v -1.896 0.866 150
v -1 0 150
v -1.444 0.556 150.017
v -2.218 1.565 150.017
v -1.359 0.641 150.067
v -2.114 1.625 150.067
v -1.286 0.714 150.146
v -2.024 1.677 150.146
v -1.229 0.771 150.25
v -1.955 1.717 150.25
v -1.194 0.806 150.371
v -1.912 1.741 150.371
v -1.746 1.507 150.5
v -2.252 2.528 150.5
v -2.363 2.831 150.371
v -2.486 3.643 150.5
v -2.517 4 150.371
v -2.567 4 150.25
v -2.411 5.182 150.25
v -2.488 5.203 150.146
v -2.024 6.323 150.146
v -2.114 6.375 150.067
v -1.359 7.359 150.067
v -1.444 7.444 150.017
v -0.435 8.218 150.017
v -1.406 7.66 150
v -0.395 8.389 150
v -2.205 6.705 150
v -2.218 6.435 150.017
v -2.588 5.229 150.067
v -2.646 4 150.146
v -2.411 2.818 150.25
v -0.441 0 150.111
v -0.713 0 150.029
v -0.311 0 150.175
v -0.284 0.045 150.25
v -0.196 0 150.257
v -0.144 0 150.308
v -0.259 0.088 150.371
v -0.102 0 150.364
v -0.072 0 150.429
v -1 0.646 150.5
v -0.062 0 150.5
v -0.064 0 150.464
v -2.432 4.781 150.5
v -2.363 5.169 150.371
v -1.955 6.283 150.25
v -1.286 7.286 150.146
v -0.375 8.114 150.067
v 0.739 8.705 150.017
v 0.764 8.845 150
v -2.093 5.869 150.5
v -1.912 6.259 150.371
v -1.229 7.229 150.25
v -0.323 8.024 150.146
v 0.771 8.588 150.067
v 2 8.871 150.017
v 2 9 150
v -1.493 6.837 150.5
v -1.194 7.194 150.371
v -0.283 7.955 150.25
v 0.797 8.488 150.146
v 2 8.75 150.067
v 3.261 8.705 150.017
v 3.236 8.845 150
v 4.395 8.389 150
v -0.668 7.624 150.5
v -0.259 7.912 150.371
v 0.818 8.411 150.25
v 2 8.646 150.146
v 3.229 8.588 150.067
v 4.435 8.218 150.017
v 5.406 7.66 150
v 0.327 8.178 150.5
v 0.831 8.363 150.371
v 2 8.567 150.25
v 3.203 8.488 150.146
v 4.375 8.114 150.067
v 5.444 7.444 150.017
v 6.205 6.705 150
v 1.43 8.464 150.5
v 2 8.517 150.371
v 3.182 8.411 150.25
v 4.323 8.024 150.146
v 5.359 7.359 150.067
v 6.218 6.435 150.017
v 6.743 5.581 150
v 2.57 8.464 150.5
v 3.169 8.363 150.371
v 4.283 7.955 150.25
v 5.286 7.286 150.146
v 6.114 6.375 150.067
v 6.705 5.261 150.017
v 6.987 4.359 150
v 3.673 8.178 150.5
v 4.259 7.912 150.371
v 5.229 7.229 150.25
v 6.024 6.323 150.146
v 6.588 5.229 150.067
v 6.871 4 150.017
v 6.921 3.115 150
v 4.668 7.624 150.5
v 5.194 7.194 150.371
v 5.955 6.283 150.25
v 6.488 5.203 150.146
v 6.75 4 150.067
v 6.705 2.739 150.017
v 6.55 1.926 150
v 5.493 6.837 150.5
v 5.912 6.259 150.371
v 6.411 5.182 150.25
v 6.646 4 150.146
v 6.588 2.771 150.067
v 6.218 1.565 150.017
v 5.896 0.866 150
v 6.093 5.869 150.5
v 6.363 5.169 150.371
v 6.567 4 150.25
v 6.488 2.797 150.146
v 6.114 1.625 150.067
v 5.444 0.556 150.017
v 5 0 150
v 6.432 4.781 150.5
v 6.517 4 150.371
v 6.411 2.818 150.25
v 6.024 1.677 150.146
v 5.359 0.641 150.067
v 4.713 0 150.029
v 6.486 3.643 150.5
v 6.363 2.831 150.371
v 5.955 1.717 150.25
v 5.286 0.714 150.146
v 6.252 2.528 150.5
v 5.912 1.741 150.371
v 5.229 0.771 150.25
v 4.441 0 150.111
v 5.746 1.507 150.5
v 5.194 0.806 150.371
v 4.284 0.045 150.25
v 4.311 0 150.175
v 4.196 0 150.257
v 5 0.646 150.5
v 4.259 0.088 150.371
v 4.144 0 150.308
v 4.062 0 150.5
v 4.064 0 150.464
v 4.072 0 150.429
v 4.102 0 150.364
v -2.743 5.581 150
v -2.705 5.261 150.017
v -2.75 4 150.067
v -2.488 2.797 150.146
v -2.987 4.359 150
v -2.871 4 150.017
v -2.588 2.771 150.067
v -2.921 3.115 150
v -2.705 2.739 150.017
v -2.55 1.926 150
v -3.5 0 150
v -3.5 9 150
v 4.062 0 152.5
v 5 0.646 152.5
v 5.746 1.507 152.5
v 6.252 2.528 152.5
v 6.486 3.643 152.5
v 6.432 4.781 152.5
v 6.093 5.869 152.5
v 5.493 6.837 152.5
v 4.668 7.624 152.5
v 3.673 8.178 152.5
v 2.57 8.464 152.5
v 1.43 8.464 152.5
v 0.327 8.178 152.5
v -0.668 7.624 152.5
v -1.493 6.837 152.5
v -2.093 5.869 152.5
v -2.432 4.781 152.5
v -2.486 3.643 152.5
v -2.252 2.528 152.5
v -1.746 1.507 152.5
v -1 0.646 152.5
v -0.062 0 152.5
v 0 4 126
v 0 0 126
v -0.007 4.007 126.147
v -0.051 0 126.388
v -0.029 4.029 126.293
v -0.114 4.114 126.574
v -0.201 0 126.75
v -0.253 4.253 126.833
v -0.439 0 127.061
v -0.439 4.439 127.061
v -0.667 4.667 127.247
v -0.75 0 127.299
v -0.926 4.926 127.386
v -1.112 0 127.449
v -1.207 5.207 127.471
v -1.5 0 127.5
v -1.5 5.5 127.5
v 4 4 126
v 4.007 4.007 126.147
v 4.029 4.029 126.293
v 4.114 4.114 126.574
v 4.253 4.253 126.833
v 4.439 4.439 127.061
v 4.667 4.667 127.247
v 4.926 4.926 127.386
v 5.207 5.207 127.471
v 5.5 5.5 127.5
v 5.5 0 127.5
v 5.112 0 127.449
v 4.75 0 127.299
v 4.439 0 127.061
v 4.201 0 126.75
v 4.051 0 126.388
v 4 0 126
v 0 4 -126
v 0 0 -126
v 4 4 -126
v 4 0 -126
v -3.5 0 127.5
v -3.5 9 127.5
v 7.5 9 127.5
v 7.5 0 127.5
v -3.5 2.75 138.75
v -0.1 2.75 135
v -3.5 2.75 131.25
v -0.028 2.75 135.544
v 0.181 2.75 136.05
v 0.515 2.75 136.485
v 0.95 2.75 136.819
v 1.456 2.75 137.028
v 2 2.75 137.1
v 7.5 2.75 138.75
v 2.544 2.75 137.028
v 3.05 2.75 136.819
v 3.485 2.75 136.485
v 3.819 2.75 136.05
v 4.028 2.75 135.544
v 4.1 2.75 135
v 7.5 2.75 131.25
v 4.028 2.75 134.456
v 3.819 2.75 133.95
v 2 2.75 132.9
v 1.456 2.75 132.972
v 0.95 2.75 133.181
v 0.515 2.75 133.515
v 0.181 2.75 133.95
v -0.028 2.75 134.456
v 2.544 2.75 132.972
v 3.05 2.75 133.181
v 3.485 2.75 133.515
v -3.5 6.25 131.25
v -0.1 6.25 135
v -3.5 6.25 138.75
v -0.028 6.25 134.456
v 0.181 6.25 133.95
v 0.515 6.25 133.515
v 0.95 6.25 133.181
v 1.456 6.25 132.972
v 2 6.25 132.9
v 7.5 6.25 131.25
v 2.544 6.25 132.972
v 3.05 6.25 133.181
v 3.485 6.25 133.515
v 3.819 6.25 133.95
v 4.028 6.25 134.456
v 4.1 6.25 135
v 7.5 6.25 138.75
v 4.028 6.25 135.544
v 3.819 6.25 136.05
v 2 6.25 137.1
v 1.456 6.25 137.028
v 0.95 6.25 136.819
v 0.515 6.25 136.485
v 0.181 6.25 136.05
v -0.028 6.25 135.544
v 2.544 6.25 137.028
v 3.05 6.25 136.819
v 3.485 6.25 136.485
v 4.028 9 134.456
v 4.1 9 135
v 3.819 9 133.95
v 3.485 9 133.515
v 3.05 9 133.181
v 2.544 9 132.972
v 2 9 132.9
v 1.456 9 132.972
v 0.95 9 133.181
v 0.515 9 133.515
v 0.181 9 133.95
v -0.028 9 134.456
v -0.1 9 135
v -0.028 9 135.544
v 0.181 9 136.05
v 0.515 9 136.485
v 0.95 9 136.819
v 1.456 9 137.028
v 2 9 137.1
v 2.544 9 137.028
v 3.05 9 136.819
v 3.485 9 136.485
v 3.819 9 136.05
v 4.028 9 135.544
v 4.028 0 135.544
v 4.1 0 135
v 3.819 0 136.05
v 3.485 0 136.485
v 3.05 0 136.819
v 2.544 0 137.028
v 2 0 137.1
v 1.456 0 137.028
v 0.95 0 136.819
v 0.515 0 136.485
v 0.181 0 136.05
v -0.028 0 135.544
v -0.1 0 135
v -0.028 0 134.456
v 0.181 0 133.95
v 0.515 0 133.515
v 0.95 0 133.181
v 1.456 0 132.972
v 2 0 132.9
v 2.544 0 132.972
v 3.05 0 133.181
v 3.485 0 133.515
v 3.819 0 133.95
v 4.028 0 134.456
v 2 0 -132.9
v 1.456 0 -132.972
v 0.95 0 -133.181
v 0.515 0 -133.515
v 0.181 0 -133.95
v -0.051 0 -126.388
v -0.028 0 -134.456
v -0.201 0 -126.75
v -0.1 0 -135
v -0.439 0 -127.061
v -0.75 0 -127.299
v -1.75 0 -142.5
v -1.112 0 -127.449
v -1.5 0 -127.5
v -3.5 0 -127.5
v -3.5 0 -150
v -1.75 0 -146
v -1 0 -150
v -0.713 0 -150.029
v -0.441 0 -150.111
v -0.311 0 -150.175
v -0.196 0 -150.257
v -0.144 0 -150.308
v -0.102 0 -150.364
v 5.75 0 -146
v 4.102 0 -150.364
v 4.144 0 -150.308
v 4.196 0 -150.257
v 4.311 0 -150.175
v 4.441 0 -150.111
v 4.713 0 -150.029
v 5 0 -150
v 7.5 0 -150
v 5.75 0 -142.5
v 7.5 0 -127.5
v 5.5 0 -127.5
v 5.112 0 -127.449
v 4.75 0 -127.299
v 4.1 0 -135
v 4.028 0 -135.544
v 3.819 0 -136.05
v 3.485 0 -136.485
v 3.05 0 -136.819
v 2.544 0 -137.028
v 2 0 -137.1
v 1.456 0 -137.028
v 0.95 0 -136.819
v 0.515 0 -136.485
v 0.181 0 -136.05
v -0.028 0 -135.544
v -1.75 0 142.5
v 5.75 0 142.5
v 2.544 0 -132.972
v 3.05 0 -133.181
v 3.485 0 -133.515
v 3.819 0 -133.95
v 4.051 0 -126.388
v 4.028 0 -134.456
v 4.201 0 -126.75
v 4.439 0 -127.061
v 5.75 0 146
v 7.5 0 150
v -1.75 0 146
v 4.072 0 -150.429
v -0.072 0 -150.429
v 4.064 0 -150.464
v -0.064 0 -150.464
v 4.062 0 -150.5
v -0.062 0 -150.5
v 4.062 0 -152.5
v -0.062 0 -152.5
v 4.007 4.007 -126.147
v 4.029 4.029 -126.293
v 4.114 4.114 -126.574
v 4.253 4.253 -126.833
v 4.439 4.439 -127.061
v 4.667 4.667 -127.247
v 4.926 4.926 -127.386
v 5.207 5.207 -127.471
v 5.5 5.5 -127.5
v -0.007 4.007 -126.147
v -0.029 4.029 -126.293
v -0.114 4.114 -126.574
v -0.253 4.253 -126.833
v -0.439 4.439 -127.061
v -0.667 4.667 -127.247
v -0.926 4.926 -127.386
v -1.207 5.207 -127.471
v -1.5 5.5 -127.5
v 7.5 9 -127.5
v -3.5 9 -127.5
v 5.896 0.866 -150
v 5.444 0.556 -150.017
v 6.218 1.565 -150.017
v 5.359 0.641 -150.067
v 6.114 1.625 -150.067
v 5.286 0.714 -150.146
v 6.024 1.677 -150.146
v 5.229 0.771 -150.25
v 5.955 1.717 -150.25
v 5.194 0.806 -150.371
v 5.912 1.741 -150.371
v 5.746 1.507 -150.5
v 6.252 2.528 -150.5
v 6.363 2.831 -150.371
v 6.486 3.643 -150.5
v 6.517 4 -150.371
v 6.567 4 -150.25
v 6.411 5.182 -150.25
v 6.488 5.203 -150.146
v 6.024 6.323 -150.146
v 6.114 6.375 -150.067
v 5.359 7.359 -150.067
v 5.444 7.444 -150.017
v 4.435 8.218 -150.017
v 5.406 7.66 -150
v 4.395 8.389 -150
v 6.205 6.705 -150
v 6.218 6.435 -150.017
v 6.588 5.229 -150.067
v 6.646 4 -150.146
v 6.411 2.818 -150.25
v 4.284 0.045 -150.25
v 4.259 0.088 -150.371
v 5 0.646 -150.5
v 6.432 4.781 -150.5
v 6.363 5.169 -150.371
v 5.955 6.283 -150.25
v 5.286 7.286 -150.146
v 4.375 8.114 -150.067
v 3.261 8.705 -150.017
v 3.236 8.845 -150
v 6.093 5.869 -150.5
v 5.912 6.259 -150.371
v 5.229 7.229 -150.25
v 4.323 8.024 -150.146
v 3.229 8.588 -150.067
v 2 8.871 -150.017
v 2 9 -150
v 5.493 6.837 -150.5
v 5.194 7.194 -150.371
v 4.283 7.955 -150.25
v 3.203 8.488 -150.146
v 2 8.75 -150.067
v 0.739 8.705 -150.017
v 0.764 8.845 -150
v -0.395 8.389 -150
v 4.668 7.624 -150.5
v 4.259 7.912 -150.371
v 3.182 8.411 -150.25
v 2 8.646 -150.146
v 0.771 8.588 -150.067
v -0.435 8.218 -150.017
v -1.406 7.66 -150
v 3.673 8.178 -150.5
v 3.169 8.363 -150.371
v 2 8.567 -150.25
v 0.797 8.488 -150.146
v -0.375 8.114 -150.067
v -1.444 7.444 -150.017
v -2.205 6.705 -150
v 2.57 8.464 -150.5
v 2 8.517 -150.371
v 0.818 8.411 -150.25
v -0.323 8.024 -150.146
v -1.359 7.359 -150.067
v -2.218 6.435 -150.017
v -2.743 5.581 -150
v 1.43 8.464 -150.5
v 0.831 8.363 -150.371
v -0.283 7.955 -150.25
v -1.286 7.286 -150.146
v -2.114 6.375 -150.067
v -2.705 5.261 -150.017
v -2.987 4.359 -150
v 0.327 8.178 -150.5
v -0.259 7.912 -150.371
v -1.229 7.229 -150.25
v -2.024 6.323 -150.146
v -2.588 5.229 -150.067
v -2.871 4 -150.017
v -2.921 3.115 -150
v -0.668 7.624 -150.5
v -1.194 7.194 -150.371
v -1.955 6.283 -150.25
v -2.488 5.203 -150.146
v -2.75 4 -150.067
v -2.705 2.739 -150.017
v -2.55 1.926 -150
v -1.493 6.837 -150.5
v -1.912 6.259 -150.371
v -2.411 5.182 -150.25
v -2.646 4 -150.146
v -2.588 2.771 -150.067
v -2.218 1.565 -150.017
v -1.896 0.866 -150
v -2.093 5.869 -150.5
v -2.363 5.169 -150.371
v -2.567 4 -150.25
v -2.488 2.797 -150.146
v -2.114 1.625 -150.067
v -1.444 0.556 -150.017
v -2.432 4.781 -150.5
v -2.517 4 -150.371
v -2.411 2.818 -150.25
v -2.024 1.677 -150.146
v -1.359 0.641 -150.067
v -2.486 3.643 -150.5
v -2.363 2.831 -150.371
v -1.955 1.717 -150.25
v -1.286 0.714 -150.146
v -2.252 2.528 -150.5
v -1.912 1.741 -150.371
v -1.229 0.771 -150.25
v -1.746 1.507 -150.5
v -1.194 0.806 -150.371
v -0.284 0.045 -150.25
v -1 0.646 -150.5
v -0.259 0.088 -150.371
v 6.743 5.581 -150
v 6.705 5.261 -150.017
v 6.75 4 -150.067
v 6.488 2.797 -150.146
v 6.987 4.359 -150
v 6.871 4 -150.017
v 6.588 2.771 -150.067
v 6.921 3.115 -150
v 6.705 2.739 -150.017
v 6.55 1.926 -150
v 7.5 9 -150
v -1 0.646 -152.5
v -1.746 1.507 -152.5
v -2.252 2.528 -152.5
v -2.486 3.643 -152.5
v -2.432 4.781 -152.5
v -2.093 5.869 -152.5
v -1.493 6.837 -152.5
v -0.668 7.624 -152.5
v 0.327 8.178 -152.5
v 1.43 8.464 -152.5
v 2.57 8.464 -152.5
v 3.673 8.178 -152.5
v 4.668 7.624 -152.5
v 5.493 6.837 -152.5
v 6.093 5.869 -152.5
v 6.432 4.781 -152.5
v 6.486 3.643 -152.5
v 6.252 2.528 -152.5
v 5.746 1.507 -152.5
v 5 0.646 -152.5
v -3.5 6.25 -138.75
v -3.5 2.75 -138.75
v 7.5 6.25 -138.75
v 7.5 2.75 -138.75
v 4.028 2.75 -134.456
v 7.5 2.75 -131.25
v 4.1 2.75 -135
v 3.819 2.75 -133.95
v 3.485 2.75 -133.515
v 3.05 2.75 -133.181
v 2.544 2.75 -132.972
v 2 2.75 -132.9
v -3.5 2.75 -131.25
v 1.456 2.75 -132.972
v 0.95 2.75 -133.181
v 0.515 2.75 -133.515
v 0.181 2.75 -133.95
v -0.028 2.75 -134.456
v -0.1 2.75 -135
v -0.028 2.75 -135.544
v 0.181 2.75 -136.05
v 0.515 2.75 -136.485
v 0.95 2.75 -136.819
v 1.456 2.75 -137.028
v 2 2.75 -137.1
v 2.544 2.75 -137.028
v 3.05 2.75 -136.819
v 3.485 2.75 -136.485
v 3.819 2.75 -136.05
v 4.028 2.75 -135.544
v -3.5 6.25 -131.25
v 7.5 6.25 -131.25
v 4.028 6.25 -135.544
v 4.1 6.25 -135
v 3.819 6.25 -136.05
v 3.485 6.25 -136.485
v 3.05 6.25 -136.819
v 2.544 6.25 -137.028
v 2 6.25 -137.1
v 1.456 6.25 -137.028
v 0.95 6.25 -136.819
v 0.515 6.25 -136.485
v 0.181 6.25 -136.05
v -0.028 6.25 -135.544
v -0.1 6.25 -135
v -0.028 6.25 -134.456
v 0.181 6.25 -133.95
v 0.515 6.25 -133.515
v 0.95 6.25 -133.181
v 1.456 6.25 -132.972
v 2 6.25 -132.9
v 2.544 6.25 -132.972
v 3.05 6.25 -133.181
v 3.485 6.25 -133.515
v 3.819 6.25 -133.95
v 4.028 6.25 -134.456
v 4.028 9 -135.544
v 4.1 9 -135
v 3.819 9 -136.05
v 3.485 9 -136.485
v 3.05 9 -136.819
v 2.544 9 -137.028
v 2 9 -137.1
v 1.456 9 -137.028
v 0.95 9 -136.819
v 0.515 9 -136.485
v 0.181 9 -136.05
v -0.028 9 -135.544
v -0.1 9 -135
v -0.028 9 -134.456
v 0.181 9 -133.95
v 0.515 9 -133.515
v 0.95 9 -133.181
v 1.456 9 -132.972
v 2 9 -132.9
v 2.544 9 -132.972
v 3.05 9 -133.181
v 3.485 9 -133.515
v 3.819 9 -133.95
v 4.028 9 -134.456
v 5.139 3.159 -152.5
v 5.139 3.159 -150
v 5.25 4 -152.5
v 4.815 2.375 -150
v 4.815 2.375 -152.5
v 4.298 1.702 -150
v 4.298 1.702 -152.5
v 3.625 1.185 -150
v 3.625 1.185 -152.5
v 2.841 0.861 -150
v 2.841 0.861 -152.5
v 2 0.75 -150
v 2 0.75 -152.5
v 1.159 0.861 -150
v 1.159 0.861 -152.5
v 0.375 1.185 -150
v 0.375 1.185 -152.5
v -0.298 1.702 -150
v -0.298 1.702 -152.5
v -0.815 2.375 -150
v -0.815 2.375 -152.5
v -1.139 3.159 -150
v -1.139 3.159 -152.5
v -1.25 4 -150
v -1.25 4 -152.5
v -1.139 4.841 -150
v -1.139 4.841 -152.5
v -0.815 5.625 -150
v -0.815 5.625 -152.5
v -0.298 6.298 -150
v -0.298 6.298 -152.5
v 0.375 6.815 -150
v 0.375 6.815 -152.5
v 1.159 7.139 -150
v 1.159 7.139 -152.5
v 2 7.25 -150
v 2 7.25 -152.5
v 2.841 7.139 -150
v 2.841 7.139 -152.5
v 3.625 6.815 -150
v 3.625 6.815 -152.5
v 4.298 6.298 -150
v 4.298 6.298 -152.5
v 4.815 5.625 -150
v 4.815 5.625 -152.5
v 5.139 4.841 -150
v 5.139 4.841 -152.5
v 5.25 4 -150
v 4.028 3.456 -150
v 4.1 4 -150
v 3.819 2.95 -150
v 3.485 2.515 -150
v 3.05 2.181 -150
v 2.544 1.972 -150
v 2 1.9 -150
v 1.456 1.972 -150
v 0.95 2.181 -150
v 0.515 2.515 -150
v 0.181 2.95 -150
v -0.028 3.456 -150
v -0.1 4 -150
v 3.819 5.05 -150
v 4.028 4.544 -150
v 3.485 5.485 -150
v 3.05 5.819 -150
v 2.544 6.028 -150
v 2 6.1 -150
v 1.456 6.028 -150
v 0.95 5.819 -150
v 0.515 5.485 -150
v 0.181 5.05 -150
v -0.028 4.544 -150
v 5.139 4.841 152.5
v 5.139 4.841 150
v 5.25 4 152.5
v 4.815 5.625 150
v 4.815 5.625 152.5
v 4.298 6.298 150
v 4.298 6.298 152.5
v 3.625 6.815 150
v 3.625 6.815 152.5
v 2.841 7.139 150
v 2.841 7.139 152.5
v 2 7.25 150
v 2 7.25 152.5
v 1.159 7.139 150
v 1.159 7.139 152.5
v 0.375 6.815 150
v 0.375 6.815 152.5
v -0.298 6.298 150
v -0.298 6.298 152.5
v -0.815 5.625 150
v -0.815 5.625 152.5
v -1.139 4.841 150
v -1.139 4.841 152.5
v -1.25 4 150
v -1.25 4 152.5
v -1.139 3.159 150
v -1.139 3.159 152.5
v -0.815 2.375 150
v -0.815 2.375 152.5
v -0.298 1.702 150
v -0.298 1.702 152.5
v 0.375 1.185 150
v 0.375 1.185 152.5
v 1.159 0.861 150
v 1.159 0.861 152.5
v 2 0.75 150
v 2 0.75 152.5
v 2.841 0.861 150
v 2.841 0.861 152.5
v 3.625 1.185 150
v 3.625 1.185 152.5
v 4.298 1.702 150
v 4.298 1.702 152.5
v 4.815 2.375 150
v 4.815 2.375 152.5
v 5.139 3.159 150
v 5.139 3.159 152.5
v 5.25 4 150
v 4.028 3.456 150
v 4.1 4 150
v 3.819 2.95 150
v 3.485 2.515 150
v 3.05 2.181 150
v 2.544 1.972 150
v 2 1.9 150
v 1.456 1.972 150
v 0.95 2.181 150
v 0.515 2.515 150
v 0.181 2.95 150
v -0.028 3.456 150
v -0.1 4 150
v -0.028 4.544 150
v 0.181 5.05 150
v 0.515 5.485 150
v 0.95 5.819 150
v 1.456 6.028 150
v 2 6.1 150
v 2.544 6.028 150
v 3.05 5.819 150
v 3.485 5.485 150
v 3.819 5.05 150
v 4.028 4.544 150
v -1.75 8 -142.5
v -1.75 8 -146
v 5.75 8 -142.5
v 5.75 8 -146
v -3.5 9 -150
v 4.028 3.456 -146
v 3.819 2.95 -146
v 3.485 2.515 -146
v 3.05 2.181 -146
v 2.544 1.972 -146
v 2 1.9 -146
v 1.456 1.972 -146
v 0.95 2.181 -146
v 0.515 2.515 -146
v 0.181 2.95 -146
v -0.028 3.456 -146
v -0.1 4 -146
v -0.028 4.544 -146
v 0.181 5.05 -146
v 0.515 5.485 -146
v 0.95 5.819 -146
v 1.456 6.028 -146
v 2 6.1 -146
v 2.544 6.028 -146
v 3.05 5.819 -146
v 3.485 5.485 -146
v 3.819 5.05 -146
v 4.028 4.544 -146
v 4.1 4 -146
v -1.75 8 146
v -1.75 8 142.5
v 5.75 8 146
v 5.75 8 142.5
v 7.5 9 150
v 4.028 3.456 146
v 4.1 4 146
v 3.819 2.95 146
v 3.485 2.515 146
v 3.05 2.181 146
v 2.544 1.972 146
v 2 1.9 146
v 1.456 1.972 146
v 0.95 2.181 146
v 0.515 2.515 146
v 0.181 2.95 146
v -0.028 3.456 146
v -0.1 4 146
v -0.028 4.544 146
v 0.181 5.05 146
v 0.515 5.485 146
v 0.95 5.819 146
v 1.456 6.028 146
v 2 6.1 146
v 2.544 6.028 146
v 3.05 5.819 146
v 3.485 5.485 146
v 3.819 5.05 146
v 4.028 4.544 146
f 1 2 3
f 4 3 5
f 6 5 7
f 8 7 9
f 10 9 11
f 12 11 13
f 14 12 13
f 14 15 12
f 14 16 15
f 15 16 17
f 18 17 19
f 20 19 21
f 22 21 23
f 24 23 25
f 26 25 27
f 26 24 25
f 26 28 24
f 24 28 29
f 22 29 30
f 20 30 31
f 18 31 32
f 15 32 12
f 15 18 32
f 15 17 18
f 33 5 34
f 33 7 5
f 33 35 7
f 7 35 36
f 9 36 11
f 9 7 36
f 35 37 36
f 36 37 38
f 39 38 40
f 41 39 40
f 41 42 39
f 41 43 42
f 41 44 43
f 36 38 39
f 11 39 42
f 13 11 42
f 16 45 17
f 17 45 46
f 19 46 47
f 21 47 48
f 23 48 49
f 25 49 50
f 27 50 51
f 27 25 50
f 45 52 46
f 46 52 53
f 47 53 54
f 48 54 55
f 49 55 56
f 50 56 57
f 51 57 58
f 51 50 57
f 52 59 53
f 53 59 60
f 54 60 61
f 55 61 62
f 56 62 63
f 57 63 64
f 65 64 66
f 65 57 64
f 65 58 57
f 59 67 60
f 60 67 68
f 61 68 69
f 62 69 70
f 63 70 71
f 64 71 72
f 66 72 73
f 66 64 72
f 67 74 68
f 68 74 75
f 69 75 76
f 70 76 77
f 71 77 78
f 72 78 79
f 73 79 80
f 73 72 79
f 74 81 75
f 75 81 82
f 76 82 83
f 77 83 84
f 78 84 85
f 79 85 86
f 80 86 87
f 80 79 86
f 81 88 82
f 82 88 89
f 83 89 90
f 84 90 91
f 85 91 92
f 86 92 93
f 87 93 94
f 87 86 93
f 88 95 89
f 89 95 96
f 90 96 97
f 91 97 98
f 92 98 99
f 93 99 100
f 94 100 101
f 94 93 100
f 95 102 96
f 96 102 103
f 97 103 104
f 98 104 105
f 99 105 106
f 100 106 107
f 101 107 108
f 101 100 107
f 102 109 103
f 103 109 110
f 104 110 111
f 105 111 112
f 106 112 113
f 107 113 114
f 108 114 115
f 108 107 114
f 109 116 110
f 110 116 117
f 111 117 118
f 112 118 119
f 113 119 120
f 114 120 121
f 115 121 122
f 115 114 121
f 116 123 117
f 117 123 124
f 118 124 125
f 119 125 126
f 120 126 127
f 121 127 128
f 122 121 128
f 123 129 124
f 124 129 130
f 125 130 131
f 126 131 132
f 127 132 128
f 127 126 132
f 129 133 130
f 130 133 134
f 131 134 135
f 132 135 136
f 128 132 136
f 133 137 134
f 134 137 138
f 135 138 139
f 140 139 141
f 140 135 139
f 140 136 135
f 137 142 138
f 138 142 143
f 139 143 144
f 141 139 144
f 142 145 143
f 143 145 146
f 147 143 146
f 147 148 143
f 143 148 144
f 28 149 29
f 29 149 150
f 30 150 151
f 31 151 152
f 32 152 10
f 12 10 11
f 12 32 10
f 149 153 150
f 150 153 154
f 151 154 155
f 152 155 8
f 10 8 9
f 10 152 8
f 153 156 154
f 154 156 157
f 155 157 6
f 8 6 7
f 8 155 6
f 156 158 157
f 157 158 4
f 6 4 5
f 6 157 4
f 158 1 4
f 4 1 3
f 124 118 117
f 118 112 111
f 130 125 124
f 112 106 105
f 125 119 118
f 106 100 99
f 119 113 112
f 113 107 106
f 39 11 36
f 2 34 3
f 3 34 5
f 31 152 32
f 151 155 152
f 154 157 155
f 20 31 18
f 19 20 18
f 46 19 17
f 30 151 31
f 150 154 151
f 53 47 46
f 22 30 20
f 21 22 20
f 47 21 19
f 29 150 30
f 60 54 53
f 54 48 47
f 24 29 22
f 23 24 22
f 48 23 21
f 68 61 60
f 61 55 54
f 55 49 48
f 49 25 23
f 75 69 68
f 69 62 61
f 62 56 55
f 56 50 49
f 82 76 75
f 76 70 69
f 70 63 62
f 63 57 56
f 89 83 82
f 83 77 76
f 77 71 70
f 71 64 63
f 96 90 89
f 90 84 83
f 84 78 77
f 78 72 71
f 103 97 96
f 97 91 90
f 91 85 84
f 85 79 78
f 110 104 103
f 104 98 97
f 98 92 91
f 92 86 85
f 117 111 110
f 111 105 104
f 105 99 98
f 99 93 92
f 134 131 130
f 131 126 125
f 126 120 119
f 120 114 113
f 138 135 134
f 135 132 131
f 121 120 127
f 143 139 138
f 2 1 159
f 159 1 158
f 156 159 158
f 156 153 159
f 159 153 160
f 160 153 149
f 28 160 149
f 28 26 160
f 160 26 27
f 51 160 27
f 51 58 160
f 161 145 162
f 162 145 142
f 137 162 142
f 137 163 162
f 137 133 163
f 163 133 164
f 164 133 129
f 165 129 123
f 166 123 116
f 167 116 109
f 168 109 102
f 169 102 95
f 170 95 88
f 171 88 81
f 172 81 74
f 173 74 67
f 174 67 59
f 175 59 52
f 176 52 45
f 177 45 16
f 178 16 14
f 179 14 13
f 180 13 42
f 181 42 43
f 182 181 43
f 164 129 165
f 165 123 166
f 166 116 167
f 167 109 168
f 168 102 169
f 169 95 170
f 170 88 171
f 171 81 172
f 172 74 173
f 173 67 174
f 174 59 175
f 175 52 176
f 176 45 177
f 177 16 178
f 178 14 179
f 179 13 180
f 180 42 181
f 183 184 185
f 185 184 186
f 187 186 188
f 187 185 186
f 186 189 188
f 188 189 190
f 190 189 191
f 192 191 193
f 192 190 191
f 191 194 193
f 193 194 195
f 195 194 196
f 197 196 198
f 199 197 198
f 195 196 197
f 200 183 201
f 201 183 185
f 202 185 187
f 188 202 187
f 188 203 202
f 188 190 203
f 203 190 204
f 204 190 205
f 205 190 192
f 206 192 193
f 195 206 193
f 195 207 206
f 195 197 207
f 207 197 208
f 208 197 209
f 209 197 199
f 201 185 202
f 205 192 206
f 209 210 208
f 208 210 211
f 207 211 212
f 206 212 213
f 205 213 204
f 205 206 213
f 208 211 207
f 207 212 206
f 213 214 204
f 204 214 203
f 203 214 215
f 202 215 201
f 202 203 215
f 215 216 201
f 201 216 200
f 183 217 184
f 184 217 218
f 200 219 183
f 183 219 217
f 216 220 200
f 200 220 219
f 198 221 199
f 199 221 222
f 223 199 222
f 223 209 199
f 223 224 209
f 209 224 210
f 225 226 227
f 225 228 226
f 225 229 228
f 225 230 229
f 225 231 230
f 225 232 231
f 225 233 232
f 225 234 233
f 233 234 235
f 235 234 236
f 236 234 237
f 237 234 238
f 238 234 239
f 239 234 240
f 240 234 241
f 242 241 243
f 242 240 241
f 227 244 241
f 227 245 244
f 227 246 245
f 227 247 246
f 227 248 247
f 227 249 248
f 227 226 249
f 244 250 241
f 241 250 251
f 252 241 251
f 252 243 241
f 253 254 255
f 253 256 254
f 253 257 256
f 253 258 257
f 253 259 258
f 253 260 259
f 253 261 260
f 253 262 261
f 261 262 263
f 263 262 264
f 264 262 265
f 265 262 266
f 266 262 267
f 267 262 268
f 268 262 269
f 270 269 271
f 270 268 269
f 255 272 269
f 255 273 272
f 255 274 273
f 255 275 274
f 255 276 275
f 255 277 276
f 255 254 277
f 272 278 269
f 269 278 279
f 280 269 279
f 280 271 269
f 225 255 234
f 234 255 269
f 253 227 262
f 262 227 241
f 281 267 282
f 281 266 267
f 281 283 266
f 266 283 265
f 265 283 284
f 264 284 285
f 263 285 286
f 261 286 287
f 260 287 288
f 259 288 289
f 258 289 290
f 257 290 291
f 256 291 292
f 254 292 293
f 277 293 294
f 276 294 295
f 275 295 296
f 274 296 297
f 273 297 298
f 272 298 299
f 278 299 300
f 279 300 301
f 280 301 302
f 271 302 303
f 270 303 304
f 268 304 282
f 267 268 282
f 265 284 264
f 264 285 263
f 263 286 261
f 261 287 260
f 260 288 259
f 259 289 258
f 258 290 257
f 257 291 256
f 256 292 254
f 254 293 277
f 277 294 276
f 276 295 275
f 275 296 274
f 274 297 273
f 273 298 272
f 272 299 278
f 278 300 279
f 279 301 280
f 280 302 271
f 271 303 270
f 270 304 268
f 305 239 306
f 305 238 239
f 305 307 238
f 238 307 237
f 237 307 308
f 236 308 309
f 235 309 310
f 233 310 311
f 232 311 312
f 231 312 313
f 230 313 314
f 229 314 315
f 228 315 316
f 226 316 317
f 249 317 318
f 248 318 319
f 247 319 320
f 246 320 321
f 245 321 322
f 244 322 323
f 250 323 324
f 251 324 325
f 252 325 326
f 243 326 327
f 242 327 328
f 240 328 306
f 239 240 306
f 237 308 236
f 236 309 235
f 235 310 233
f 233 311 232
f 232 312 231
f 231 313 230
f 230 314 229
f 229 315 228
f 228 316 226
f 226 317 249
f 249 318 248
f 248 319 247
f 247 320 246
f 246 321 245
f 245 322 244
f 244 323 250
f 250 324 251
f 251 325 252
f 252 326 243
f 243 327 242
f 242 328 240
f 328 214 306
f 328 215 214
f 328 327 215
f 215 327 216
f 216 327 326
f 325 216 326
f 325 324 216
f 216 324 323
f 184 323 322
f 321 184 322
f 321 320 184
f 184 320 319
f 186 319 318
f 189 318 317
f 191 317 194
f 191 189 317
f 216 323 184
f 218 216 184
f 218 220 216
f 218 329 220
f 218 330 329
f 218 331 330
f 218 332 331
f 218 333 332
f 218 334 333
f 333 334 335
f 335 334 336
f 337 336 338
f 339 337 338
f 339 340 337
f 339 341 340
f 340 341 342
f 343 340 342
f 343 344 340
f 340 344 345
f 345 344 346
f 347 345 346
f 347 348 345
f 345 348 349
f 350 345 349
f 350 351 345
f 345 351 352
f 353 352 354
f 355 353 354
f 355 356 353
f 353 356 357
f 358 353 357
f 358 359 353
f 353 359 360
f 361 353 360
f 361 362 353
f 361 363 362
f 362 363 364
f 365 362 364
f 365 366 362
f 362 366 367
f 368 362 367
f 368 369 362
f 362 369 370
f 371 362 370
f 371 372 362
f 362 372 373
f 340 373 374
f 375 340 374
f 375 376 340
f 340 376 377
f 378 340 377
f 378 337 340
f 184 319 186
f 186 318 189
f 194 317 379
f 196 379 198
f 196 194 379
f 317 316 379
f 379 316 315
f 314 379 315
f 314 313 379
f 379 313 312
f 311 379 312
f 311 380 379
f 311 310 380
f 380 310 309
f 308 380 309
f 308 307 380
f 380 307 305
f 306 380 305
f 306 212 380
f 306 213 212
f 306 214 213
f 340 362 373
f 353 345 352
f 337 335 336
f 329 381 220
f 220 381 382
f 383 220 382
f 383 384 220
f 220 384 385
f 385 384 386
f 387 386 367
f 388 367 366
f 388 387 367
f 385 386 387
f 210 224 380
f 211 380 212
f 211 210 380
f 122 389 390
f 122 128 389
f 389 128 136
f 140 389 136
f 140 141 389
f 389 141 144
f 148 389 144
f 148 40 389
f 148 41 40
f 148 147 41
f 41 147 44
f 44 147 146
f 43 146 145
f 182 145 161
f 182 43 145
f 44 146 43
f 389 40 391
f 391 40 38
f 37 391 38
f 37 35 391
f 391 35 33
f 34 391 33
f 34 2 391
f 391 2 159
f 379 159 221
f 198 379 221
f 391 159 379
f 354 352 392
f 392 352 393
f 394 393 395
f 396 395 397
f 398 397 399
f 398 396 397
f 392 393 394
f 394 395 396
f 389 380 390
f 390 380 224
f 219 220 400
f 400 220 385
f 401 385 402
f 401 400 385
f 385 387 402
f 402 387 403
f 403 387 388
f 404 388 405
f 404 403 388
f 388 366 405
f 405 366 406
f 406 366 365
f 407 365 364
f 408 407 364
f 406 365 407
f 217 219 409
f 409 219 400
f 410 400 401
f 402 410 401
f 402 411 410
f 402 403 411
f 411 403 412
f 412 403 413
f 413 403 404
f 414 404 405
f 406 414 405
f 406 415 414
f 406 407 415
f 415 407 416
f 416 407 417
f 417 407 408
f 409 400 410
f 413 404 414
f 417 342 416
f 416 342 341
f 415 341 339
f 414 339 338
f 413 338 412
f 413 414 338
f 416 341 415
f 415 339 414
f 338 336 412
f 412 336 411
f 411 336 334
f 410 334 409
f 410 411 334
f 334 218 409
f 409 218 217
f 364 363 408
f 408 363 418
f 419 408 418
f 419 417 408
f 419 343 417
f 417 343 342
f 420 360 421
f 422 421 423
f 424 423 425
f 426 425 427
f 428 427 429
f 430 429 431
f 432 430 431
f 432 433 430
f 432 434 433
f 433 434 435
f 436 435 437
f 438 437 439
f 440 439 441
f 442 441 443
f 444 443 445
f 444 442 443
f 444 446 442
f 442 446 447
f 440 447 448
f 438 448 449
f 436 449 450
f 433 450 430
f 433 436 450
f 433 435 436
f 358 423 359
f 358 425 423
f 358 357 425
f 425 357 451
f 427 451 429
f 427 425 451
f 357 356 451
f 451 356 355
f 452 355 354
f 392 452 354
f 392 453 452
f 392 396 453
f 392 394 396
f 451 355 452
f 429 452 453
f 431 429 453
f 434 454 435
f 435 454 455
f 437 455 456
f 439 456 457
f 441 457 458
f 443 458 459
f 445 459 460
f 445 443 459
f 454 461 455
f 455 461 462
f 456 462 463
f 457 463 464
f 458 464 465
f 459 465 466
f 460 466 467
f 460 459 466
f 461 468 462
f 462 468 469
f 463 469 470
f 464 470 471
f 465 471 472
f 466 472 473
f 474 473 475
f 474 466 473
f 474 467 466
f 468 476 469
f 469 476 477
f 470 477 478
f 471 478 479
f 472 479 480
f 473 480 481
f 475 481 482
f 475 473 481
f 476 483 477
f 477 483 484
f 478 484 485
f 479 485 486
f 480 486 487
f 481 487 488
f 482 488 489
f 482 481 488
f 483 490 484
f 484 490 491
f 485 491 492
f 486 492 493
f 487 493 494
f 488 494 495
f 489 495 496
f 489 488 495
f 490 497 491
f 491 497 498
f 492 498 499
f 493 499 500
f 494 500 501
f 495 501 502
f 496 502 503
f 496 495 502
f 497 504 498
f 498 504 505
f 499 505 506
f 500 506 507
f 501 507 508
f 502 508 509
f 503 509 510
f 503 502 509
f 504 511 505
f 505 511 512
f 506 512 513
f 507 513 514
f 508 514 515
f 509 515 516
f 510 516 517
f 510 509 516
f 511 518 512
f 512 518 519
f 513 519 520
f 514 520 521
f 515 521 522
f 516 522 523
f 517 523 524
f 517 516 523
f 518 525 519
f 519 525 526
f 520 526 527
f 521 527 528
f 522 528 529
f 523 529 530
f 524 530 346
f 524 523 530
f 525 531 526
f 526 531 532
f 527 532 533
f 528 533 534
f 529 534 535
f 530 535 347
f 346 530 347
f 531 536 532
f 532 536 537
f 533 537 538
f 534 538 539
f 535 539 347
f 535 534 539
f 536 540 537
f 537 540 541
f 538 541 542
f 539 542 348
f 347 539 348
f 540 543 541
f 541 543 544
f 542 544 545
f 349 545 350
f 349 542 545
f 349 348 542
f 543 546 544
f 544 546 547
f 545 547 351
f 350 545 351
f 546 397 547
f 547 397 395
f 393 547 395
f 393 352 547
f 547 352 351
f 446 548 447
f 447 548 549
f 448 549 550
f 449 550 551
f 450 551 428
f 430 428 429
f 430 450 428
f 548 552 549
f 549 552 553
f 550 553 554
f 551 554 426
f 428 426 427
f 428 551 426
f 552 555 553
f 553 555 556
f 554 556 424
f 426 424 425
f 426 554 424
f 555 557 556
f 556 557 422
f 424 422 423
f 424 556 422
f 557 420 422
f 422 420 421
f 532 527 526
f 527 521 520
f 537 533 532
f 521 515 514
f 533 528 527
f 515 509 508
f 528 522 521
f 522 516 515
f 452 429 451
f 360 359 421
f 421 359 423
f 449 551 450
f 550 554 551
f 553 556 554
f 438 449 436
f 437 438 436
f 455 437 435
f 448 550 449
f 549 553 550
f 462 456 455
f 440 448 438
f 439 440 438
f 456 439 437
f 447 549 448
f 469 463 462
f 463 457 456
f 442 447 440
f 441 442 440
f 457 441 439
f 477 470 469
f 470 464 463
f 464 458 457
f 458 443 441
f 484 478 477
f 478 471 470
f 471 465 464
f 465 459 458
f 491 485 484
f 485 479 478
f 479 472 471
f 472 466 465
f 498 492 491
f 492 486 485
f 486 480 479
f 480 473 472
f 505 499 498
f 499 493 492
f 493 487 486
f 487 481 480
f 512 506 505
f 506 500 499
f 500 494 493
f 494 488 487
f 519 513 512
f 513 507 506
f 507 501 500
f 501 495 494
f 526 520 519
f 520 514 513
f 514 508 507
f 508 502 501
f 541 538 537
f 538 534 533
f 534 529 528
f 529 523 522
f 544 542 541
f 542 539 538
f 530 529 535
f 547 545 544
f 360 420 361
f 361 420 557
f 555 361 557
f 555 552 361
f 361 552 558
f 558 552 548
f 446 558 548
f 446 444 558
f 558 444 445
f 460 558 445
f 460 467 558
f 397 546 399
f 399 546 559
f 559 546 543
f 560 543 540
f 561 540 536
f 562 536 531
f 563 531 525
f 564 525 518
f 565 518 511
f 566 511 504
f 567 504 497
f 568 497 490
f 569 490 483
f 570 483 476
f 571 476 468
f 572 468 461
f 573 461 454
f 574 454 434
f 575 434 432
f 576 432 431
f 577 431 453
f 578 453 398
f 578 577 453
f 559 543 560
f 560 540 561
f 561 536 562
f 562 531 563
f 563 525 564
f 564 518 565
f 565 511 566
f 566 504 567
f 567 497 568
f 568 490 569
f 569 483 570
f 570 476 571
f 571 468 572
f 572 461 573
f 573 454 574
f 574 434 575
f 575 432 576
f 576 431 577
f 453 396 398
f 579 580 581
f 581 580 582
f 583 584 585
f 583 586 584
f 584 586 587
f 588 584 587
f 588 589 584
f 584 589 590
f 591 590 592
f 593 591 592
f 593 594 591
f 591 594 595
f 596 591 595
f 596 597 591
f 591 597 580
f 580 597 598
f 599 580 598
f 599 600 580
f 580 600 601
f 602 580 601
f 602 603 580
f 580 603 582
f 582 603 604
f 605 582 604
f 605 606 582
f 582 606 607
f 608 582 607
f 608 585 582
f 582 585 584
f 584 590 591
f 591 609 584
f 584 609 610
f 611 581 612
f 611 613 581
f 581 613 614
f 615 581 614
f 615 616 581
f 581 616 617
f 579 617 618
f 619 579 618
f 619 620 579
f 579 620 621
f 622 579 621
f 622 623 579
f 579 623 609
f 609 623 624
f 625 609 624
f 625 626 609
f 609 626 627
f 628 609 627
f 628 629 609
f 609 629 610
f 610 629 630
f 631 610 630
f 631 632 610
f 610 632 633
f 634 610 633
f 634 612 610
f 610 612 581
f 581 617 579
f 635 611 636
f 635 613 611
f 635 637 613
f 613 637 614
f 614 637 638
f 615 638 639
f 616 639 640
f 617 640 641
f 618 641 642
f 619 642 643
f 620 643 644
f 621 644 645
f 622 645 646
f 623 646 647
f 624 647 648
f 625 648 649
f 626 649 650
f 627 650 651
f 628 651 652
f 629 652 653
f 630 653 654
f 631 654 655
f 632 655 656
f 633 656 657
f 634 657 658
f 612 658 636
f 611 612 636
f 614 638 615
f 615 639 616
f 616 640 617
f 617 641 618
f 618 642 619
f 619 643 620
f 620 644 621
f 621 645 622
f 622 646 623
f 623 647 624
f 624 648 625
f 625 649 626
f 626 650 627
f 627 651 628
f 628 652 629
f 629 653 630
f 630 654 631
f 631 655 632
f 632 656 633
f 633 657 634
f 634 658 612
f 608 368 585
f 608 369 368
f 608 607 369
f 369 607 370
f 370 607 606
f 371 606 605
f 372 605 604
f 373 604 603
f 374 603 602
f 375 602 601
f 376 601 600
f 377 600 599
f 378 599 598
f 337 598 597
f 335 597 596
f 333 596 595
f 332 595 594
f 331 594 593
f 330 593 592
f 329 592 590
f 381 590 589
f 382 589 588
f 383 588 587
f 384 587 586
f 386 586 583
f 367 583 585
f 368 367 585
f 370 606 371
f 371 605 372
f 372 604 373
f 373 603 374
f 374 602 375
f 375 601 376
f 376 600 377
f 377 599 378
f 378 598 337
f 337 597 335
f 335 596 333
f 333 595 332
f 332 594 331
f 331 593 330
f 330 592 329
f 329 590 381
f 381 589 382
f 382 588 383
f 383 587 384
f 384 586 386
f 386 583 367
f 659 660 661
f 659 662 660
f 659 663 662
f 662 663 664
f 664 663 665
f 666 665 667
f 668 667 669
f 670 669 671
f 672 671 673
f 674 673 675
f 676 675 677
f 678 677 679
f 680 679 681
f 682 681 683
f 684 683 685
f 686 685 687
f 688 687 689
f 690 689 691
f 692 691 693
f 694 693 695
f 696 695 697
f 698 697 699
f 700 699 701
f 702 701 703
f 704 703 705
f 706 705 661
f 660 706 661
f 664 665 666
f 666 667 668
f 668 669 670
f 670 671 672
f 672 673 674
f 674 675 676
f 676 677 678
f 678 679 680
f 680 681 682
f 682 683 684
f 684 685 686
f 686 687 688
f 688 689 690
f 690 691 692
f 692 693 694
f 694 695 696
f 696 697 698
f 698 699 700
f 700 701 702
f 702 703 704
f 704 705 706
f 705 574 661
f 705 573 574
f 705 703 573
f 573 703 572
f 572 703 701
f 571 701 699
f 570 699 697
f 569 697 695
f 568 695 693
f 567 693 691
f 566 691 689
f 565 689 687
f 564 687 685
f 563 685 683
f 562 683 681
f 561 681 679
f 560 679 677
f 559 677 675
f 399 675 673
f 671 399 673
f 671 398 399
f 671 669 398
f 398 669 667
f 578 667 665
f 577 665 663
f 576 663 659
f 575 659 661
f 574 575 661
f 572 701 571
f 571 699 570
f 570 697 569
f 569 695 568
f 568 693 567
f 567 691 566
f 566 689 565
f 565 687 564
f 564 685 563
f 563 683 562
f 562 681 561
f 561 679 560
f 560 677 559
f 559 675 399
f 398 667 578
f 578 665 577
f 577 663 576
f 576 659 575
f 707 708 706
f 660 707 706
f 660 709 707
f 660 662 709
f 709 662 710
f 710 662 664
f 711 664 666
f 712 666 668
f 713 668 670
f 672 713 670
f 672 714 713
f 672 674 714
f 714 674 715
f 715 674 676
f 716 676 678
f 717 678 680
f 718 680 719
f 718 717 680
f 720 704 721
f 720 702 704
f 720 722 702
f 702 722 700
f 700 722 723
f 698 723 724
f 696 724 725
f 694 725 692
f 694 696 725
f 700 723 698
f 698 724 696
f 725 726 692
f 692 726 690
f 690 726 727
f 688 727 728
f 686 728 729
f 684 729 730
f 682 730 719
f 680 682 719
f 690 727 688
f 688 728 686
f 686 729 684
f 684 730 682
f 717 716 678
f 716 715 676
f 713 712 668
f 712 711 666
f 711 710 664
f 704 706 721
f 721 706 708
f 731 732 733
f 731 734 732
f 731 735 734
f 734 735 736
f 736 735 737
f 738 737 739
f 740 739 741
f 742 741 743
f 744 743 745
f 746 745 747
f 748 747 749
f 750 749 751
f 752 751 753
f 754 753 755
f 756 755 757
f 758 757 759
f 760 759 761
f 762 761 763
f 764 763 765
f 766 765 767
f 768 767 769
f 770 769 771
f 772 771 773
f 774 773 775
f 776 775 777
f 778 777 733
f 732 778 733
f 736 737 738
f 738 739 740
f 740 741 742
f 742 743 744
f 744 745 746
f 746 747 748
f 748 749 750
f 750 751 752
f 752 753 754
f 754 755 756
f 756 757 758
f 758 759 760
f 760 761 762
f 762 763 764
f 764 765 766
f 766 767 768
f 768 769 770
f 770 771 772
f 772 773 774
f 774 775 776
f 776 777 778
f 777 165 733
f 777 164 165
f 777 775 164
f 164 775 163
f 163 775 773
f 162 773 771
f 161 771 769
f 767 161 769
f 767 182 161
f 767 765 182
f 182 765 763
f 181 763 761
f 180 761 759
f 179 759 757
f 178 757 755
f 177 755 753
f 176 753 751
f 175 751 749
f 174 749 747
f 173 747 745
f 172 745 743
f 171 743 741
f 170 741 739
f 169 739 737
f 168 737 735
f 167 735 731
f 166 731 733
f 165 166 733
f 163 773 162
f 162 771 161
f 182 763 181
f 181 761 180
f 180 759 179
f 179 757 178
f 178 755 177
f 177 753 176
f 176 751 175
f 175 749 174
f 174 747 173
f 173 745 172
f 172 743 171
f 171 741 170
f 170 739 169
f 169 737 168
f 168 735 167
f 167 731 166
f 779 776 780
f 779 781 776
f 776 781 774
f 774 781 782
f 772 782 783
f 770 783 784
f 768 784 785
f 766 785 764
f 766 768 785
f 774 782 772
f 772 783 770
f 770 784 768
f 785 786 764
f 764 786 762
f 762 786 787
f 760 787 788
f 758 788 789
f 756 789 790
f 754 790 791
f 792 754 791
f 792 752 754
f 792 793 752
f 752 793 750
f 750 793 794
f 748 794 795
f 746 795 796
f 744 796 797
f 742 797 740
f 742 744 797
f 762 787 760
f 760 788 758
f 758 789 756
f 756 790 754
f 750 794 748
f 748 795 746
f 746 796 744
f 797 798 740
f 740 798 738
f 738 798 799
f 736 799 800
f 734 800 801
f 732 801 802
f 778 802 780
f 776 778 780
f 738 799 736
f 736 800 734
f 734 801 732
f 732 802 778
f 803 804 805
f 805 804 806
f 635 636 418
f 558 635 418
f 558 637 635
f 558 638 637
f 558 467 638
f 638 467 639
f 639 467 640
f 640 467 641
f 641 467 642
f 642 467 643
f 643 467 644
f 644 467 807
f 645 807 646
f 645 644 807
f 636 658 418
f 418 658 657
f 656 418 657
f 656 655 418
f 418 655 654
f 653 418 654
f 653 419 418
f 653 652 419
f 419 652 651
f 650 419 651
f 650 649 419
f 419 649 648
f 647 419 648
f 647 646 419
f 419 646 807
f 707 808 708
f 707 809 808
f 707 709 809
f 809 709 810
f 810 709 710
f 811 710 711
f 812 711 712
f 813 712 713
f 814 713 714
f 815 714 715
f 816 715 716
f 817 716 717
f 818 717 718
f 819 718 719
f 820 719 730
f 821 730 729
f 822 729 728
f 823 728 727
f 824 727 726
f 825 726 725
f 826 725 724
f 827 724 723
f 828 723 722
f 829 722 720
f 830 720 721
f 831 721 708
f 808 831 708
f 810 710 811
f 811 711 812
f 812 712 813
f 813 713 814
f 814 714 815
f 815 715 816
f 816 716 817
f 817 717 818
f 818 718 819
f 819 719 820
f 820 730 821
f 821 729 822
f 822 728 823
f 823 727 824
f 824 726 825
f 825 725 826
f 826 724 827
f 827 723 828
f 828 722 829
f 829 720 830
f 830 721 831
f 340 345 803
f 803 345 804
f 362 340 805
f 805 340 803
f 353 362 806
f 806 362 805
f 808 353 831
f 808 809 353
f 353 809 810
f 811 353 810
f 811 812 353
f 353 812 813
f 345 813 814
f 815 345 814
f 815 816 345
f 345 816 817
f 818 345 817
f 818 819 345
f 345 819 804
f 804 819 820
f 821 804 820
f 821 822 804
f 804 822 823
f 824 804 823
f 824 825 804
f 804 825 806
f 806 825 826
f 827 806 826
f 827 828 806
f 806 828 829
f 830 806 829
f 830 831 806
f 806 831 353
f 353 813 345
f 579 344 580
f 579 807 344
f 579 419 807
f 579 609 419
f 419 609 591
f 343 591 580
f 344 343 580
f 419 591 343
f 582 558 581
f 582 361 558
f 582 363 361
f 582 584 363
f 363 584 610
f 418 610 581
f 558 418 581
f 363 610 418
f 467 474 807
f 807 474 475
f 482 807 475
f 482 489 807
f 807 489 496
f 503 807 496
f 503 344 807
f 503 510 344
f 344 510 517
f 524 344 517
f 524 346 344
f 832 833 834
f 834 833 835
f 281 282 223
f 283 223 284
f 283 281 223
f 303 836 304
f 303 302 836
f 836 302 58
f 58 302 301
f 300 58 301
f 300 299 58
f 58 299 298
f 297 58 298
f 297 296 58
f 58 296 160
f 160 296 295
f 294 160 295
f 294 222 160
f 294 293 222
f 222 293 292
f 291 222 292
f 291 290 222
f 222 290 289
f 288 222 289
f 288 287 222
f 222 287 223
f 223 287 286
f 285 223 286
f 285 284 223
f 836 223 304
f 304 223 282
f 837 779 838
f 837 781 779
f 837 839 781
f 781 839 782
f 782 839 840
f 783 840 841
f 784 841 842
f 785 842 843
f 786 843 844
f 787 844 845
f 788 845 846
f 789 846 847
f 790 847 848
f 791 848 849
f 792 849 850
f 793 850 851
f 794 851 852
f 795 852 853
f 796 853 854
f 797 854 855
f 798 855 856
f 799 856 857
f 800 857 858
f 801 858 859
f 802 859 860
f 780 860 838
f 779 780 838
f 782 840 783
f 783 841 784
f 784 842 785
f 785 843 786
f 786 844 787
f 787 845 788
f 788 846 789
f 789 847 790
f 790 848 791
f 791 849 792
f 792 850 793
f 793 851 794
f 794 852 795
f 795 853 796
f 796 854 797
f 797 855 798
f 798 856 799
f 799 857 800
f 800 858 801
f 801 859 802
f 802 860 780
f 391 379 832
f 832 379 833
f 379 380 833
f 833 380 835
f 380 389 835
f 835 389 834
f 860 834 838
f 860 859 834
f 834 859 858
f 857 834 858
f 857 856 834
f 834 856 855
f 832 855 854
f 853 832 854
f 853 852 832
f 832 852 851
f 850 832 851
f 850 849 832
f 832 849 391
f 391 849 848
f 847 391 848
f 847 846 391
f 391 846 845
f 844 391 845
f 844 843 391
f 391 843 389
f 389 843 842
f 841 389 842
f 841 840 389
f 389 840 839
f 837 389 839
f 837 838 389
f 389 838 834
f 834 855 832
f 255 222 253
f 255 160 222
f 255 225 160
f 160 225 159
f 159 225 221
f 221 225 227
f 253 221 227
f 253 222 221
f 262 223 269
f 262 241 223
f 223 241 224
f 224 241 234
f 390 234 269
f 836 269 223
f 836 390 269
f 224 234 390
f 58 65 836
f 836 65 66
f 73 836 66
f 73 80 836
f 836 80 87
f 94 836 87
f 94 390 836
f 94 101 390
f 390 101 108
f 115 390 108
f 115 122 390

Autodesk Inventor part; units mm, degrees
ref_plane "YZ Plane" through (0, 0, 0) normal (1, 0, 0) x (0, 1, 0)
ref_plane "XZ Plane" through (0, 0, 0) normal (0, 1, 0) x (-1, 0, 0)
ref_plane "XY Plane" through (0, 0, 0) normal (0, 0, 1) x (1, 0, 0)
sketch "Sketch1" plane through (0, 0, 0) normal (0, 0, 1) x (1, 0, 0)
  line L0 (0, 0) -> (4, 0)
  line L1 (4, 0) -> (4, 4)
  line L2 (4, 4) -> (0, 4)
  line L3 (0, 4) -> (0, 0)
  dimension "d0" = 4
  dimension "d1" = 4
extrude "Extrusion1" add sketch "Sketch1" along normal blind 138.5
sketch "Sketch3" plane through (0, 0, 138.5) normal (0, 0, 1) x (1, 0, 0)
  line L0 (0, 0) -> (4, 0) projected
  line L1 (-3.5, 0) -> (7.5, 0)
  line L2 (7.5, 0) -> (7.5, 8)
  line L3 (7.5, 8) -> (-3.5, 8)
  line L4 (-3.5, 8) -> (-3.5, 0)
  point P0 (2, 0)
  dimension "d4" = 11
  dimension "d5" = 8
extrude "Extrusion2" add sketch "Sketch3" along normal blind 11.5
sketch "Sketch4" plane through (0, 0, 0) normal (0, -1, 0) x (1, 0, 0)
  line L0 (7.5, 138.5) -> (7.5, 150) projected
  line L1 (-3.5, 150) -> (7.5, 150) projected
  line L2 (-1.75, 146) -> (5.75, 146)
  line L3 (5.75, 146) -> (5.75, 142.5)
  line L4 (5.75, 142.5) -> (-1.75, 142.5)
  line L5 (-1.75, 142.5) -> (-1.75, 146)
  point P0 (2, 146)
  point P1 (2, 150)
  point P2 (5.75, 144.25)
  point P3 (7.5, 144.25)
  dimension "d8" = 7.5
  dimension "d9" = 3.5
extrude "Extrusion3" cut sketch "Sketch4" against normal blind 8
sketch "Sketch5" plane through (0, 0, 150) normal (0, 0, 1) x (1, 0, 0)
  circle A0 centre (2, 4) radius 2.1
  point P0 (0, 0)
  dimension "d12" = 4.2
extrude "Extrusion4" cut sketch "Sketch5" against normal up to surface (7.5 mm away)
sketch "Sketch6" plane through (-3.5, 8, 138.5) normal (0, 1, 0) x (1, 0, 0)
  line L0 (11, 0) -> (0, 0) projected
  line L1 (0, 0) -> (0, -11.5) projected
  line L2 (11, -11.5) -> (0, -11.5) projected
  line L3 (11, 0) -> (11, -11.5) projected
  point P0 (3.5, 138.5)
extrude "Extrusion5" add sketch "Sketch6" along normal blind 1
mirror "Mirror2" about plane through (0, 0, 0) normal (0, 0, 1) of "Extrusion1", "Extrusion5", "Extrusion2", "Extrusion3", "Extrusion4"
sketch "Sketch7" plane through (0, 0, 150) normal (0, 0, 1) x (1, 0, 0)
  line L0 (-3.5, 0) -> (7.5, 0) projected
  arc A0 (4.0616, 0) -> (-0.0616, 0) centre (2, 4) ccw
  line L1 (0, 0) -> (-0.0616, 0)
  line L2 (-0.0616, 0) -> (4.0616, 0)
  circle A1 centre (2, 4) radius 3.25
  dimension "d17" = 9
  dimension "d18" = 6.5
extrude "Extrusion6" add sketch "Sketch7" along normal blind 2.5
sketch "Sketch8" plane through (-3.5, 8, 138.5) normal (0, -1, 0) x (1, 0, 0)
  line L0 (1.75, 7.5) -> (1.75, 4) projected
  line L1 (1.75, 4) -> (9.25, 4) projected
  line L2 (9.25, 4) -> (9.25, 7.5) projected
  line L3 (9.25, 7.5) -> (1.75, 7.5) projected
  point P0 (3.5, -138.5)
mirror "Mirror3" about plane through (0, 0, 0) normal (0, 0, 1) of "Extrusion6"
sketch "Sketch10" plane through (-3.5, 9, -138.5) normal (0, 1, 0) x (1, 0, 0)
  line L0 (0, 0) -> (11, 0)
  line L1 (11, 0) -> (11, -9)
  line L2 (11, -9) -> (0, -9)
  line L3 (0, -9) -> (0, 0)
  point P0 (3.5, -138.5)
  dimension "d21" = 9
extrude "Extrusion7" add sketch "Sketch10" against normal up to surface (9 mm away)
sketch "Sketch11" plane through (-3.5, 9, -150) normal (0, 1, 0) x (1, 0, 0)
  line L0 (11, -20.5) -> (0, -20.5) projected
  circle A0 centre (5.5, -15) radius 2.1
  point P0 (3.5, -150)
  dimension "d24" = 4.2
  dimension "d25" = 5.5
extrude "Extrusion8" cut sketch "Sketch11" against normal blind 11
sketch "Sketch12" plane through (-3.5, 0, -150) normal (-1, 0, 0) x (0, 0, 1)
  line L0 (20.5, 9) -> (20.5, 0) projected
  line L1 (18.75, 6.25) -> (11.25, 6.25)
  line L2 (11.25, 6.25) -> (11.25, 2.75)
  line L3 (11.25, 2.75) -> (18.75, 2.75)
  line L4 (18.75, 2.75) -> (18.75, 6.25)
  point P0 (150, 0)
  point P1 (18.75, 4.5)
  point P2 (20.5, 4.5)
  dimension "d28" = 7.5
  dimension "d29" = 3.5
  dimension "d30" = 1.75
extrude "Extrusion9" cut sketch "Sketch12" against normal blind 11
fillet "Fillet3" radius 0.5 1 edges at (2, 8.5, -150)
sketch "Sketch14" plane through (-3.5, 9, -129.5) normal (0, 0, 1) x (1, 0, 0)
  line L0 (7.5, -9) -> (7.5, -5) projected
  line L1 (7.5, -9) -> (11, -9) projected
  line L2 (11, 0) -> (11, -9) projected
  line L3 (11, 0) -> (0, 0) projected
  line L4 (0, 0) -> (0, -9) projected
  line L5 (0, -9) -> (3.5, -9) projected
  line L6 (3.5, -5) -> (3.5, -9) projected
  line L7 (7.5, -5) -> (3.5, -5) projected
extrude "Extrusion10" add sketch "Sketch14" along normal blind 2
fillet "Fillet4" radius 1.5 3 edges at (4, 2, -127.5) (2, 4, -127.5) (0, 2, -127.5)
mirror "Mirror5" about plane through (0, 0, 0) normal (0, 0, 1) of "Extrusion7", "Extrusion8", "Extrusion9", "Extrusion10"
fillet "Fillet5" radius 1.5 3 edges at (0, 2, 127.5) (2, 4, 127.5) (4, 2, 127.5)
fillet "Fillet6" radius 0.5 1 edges at (2, 8.5, 150)
properties part number "Axle300mm"
